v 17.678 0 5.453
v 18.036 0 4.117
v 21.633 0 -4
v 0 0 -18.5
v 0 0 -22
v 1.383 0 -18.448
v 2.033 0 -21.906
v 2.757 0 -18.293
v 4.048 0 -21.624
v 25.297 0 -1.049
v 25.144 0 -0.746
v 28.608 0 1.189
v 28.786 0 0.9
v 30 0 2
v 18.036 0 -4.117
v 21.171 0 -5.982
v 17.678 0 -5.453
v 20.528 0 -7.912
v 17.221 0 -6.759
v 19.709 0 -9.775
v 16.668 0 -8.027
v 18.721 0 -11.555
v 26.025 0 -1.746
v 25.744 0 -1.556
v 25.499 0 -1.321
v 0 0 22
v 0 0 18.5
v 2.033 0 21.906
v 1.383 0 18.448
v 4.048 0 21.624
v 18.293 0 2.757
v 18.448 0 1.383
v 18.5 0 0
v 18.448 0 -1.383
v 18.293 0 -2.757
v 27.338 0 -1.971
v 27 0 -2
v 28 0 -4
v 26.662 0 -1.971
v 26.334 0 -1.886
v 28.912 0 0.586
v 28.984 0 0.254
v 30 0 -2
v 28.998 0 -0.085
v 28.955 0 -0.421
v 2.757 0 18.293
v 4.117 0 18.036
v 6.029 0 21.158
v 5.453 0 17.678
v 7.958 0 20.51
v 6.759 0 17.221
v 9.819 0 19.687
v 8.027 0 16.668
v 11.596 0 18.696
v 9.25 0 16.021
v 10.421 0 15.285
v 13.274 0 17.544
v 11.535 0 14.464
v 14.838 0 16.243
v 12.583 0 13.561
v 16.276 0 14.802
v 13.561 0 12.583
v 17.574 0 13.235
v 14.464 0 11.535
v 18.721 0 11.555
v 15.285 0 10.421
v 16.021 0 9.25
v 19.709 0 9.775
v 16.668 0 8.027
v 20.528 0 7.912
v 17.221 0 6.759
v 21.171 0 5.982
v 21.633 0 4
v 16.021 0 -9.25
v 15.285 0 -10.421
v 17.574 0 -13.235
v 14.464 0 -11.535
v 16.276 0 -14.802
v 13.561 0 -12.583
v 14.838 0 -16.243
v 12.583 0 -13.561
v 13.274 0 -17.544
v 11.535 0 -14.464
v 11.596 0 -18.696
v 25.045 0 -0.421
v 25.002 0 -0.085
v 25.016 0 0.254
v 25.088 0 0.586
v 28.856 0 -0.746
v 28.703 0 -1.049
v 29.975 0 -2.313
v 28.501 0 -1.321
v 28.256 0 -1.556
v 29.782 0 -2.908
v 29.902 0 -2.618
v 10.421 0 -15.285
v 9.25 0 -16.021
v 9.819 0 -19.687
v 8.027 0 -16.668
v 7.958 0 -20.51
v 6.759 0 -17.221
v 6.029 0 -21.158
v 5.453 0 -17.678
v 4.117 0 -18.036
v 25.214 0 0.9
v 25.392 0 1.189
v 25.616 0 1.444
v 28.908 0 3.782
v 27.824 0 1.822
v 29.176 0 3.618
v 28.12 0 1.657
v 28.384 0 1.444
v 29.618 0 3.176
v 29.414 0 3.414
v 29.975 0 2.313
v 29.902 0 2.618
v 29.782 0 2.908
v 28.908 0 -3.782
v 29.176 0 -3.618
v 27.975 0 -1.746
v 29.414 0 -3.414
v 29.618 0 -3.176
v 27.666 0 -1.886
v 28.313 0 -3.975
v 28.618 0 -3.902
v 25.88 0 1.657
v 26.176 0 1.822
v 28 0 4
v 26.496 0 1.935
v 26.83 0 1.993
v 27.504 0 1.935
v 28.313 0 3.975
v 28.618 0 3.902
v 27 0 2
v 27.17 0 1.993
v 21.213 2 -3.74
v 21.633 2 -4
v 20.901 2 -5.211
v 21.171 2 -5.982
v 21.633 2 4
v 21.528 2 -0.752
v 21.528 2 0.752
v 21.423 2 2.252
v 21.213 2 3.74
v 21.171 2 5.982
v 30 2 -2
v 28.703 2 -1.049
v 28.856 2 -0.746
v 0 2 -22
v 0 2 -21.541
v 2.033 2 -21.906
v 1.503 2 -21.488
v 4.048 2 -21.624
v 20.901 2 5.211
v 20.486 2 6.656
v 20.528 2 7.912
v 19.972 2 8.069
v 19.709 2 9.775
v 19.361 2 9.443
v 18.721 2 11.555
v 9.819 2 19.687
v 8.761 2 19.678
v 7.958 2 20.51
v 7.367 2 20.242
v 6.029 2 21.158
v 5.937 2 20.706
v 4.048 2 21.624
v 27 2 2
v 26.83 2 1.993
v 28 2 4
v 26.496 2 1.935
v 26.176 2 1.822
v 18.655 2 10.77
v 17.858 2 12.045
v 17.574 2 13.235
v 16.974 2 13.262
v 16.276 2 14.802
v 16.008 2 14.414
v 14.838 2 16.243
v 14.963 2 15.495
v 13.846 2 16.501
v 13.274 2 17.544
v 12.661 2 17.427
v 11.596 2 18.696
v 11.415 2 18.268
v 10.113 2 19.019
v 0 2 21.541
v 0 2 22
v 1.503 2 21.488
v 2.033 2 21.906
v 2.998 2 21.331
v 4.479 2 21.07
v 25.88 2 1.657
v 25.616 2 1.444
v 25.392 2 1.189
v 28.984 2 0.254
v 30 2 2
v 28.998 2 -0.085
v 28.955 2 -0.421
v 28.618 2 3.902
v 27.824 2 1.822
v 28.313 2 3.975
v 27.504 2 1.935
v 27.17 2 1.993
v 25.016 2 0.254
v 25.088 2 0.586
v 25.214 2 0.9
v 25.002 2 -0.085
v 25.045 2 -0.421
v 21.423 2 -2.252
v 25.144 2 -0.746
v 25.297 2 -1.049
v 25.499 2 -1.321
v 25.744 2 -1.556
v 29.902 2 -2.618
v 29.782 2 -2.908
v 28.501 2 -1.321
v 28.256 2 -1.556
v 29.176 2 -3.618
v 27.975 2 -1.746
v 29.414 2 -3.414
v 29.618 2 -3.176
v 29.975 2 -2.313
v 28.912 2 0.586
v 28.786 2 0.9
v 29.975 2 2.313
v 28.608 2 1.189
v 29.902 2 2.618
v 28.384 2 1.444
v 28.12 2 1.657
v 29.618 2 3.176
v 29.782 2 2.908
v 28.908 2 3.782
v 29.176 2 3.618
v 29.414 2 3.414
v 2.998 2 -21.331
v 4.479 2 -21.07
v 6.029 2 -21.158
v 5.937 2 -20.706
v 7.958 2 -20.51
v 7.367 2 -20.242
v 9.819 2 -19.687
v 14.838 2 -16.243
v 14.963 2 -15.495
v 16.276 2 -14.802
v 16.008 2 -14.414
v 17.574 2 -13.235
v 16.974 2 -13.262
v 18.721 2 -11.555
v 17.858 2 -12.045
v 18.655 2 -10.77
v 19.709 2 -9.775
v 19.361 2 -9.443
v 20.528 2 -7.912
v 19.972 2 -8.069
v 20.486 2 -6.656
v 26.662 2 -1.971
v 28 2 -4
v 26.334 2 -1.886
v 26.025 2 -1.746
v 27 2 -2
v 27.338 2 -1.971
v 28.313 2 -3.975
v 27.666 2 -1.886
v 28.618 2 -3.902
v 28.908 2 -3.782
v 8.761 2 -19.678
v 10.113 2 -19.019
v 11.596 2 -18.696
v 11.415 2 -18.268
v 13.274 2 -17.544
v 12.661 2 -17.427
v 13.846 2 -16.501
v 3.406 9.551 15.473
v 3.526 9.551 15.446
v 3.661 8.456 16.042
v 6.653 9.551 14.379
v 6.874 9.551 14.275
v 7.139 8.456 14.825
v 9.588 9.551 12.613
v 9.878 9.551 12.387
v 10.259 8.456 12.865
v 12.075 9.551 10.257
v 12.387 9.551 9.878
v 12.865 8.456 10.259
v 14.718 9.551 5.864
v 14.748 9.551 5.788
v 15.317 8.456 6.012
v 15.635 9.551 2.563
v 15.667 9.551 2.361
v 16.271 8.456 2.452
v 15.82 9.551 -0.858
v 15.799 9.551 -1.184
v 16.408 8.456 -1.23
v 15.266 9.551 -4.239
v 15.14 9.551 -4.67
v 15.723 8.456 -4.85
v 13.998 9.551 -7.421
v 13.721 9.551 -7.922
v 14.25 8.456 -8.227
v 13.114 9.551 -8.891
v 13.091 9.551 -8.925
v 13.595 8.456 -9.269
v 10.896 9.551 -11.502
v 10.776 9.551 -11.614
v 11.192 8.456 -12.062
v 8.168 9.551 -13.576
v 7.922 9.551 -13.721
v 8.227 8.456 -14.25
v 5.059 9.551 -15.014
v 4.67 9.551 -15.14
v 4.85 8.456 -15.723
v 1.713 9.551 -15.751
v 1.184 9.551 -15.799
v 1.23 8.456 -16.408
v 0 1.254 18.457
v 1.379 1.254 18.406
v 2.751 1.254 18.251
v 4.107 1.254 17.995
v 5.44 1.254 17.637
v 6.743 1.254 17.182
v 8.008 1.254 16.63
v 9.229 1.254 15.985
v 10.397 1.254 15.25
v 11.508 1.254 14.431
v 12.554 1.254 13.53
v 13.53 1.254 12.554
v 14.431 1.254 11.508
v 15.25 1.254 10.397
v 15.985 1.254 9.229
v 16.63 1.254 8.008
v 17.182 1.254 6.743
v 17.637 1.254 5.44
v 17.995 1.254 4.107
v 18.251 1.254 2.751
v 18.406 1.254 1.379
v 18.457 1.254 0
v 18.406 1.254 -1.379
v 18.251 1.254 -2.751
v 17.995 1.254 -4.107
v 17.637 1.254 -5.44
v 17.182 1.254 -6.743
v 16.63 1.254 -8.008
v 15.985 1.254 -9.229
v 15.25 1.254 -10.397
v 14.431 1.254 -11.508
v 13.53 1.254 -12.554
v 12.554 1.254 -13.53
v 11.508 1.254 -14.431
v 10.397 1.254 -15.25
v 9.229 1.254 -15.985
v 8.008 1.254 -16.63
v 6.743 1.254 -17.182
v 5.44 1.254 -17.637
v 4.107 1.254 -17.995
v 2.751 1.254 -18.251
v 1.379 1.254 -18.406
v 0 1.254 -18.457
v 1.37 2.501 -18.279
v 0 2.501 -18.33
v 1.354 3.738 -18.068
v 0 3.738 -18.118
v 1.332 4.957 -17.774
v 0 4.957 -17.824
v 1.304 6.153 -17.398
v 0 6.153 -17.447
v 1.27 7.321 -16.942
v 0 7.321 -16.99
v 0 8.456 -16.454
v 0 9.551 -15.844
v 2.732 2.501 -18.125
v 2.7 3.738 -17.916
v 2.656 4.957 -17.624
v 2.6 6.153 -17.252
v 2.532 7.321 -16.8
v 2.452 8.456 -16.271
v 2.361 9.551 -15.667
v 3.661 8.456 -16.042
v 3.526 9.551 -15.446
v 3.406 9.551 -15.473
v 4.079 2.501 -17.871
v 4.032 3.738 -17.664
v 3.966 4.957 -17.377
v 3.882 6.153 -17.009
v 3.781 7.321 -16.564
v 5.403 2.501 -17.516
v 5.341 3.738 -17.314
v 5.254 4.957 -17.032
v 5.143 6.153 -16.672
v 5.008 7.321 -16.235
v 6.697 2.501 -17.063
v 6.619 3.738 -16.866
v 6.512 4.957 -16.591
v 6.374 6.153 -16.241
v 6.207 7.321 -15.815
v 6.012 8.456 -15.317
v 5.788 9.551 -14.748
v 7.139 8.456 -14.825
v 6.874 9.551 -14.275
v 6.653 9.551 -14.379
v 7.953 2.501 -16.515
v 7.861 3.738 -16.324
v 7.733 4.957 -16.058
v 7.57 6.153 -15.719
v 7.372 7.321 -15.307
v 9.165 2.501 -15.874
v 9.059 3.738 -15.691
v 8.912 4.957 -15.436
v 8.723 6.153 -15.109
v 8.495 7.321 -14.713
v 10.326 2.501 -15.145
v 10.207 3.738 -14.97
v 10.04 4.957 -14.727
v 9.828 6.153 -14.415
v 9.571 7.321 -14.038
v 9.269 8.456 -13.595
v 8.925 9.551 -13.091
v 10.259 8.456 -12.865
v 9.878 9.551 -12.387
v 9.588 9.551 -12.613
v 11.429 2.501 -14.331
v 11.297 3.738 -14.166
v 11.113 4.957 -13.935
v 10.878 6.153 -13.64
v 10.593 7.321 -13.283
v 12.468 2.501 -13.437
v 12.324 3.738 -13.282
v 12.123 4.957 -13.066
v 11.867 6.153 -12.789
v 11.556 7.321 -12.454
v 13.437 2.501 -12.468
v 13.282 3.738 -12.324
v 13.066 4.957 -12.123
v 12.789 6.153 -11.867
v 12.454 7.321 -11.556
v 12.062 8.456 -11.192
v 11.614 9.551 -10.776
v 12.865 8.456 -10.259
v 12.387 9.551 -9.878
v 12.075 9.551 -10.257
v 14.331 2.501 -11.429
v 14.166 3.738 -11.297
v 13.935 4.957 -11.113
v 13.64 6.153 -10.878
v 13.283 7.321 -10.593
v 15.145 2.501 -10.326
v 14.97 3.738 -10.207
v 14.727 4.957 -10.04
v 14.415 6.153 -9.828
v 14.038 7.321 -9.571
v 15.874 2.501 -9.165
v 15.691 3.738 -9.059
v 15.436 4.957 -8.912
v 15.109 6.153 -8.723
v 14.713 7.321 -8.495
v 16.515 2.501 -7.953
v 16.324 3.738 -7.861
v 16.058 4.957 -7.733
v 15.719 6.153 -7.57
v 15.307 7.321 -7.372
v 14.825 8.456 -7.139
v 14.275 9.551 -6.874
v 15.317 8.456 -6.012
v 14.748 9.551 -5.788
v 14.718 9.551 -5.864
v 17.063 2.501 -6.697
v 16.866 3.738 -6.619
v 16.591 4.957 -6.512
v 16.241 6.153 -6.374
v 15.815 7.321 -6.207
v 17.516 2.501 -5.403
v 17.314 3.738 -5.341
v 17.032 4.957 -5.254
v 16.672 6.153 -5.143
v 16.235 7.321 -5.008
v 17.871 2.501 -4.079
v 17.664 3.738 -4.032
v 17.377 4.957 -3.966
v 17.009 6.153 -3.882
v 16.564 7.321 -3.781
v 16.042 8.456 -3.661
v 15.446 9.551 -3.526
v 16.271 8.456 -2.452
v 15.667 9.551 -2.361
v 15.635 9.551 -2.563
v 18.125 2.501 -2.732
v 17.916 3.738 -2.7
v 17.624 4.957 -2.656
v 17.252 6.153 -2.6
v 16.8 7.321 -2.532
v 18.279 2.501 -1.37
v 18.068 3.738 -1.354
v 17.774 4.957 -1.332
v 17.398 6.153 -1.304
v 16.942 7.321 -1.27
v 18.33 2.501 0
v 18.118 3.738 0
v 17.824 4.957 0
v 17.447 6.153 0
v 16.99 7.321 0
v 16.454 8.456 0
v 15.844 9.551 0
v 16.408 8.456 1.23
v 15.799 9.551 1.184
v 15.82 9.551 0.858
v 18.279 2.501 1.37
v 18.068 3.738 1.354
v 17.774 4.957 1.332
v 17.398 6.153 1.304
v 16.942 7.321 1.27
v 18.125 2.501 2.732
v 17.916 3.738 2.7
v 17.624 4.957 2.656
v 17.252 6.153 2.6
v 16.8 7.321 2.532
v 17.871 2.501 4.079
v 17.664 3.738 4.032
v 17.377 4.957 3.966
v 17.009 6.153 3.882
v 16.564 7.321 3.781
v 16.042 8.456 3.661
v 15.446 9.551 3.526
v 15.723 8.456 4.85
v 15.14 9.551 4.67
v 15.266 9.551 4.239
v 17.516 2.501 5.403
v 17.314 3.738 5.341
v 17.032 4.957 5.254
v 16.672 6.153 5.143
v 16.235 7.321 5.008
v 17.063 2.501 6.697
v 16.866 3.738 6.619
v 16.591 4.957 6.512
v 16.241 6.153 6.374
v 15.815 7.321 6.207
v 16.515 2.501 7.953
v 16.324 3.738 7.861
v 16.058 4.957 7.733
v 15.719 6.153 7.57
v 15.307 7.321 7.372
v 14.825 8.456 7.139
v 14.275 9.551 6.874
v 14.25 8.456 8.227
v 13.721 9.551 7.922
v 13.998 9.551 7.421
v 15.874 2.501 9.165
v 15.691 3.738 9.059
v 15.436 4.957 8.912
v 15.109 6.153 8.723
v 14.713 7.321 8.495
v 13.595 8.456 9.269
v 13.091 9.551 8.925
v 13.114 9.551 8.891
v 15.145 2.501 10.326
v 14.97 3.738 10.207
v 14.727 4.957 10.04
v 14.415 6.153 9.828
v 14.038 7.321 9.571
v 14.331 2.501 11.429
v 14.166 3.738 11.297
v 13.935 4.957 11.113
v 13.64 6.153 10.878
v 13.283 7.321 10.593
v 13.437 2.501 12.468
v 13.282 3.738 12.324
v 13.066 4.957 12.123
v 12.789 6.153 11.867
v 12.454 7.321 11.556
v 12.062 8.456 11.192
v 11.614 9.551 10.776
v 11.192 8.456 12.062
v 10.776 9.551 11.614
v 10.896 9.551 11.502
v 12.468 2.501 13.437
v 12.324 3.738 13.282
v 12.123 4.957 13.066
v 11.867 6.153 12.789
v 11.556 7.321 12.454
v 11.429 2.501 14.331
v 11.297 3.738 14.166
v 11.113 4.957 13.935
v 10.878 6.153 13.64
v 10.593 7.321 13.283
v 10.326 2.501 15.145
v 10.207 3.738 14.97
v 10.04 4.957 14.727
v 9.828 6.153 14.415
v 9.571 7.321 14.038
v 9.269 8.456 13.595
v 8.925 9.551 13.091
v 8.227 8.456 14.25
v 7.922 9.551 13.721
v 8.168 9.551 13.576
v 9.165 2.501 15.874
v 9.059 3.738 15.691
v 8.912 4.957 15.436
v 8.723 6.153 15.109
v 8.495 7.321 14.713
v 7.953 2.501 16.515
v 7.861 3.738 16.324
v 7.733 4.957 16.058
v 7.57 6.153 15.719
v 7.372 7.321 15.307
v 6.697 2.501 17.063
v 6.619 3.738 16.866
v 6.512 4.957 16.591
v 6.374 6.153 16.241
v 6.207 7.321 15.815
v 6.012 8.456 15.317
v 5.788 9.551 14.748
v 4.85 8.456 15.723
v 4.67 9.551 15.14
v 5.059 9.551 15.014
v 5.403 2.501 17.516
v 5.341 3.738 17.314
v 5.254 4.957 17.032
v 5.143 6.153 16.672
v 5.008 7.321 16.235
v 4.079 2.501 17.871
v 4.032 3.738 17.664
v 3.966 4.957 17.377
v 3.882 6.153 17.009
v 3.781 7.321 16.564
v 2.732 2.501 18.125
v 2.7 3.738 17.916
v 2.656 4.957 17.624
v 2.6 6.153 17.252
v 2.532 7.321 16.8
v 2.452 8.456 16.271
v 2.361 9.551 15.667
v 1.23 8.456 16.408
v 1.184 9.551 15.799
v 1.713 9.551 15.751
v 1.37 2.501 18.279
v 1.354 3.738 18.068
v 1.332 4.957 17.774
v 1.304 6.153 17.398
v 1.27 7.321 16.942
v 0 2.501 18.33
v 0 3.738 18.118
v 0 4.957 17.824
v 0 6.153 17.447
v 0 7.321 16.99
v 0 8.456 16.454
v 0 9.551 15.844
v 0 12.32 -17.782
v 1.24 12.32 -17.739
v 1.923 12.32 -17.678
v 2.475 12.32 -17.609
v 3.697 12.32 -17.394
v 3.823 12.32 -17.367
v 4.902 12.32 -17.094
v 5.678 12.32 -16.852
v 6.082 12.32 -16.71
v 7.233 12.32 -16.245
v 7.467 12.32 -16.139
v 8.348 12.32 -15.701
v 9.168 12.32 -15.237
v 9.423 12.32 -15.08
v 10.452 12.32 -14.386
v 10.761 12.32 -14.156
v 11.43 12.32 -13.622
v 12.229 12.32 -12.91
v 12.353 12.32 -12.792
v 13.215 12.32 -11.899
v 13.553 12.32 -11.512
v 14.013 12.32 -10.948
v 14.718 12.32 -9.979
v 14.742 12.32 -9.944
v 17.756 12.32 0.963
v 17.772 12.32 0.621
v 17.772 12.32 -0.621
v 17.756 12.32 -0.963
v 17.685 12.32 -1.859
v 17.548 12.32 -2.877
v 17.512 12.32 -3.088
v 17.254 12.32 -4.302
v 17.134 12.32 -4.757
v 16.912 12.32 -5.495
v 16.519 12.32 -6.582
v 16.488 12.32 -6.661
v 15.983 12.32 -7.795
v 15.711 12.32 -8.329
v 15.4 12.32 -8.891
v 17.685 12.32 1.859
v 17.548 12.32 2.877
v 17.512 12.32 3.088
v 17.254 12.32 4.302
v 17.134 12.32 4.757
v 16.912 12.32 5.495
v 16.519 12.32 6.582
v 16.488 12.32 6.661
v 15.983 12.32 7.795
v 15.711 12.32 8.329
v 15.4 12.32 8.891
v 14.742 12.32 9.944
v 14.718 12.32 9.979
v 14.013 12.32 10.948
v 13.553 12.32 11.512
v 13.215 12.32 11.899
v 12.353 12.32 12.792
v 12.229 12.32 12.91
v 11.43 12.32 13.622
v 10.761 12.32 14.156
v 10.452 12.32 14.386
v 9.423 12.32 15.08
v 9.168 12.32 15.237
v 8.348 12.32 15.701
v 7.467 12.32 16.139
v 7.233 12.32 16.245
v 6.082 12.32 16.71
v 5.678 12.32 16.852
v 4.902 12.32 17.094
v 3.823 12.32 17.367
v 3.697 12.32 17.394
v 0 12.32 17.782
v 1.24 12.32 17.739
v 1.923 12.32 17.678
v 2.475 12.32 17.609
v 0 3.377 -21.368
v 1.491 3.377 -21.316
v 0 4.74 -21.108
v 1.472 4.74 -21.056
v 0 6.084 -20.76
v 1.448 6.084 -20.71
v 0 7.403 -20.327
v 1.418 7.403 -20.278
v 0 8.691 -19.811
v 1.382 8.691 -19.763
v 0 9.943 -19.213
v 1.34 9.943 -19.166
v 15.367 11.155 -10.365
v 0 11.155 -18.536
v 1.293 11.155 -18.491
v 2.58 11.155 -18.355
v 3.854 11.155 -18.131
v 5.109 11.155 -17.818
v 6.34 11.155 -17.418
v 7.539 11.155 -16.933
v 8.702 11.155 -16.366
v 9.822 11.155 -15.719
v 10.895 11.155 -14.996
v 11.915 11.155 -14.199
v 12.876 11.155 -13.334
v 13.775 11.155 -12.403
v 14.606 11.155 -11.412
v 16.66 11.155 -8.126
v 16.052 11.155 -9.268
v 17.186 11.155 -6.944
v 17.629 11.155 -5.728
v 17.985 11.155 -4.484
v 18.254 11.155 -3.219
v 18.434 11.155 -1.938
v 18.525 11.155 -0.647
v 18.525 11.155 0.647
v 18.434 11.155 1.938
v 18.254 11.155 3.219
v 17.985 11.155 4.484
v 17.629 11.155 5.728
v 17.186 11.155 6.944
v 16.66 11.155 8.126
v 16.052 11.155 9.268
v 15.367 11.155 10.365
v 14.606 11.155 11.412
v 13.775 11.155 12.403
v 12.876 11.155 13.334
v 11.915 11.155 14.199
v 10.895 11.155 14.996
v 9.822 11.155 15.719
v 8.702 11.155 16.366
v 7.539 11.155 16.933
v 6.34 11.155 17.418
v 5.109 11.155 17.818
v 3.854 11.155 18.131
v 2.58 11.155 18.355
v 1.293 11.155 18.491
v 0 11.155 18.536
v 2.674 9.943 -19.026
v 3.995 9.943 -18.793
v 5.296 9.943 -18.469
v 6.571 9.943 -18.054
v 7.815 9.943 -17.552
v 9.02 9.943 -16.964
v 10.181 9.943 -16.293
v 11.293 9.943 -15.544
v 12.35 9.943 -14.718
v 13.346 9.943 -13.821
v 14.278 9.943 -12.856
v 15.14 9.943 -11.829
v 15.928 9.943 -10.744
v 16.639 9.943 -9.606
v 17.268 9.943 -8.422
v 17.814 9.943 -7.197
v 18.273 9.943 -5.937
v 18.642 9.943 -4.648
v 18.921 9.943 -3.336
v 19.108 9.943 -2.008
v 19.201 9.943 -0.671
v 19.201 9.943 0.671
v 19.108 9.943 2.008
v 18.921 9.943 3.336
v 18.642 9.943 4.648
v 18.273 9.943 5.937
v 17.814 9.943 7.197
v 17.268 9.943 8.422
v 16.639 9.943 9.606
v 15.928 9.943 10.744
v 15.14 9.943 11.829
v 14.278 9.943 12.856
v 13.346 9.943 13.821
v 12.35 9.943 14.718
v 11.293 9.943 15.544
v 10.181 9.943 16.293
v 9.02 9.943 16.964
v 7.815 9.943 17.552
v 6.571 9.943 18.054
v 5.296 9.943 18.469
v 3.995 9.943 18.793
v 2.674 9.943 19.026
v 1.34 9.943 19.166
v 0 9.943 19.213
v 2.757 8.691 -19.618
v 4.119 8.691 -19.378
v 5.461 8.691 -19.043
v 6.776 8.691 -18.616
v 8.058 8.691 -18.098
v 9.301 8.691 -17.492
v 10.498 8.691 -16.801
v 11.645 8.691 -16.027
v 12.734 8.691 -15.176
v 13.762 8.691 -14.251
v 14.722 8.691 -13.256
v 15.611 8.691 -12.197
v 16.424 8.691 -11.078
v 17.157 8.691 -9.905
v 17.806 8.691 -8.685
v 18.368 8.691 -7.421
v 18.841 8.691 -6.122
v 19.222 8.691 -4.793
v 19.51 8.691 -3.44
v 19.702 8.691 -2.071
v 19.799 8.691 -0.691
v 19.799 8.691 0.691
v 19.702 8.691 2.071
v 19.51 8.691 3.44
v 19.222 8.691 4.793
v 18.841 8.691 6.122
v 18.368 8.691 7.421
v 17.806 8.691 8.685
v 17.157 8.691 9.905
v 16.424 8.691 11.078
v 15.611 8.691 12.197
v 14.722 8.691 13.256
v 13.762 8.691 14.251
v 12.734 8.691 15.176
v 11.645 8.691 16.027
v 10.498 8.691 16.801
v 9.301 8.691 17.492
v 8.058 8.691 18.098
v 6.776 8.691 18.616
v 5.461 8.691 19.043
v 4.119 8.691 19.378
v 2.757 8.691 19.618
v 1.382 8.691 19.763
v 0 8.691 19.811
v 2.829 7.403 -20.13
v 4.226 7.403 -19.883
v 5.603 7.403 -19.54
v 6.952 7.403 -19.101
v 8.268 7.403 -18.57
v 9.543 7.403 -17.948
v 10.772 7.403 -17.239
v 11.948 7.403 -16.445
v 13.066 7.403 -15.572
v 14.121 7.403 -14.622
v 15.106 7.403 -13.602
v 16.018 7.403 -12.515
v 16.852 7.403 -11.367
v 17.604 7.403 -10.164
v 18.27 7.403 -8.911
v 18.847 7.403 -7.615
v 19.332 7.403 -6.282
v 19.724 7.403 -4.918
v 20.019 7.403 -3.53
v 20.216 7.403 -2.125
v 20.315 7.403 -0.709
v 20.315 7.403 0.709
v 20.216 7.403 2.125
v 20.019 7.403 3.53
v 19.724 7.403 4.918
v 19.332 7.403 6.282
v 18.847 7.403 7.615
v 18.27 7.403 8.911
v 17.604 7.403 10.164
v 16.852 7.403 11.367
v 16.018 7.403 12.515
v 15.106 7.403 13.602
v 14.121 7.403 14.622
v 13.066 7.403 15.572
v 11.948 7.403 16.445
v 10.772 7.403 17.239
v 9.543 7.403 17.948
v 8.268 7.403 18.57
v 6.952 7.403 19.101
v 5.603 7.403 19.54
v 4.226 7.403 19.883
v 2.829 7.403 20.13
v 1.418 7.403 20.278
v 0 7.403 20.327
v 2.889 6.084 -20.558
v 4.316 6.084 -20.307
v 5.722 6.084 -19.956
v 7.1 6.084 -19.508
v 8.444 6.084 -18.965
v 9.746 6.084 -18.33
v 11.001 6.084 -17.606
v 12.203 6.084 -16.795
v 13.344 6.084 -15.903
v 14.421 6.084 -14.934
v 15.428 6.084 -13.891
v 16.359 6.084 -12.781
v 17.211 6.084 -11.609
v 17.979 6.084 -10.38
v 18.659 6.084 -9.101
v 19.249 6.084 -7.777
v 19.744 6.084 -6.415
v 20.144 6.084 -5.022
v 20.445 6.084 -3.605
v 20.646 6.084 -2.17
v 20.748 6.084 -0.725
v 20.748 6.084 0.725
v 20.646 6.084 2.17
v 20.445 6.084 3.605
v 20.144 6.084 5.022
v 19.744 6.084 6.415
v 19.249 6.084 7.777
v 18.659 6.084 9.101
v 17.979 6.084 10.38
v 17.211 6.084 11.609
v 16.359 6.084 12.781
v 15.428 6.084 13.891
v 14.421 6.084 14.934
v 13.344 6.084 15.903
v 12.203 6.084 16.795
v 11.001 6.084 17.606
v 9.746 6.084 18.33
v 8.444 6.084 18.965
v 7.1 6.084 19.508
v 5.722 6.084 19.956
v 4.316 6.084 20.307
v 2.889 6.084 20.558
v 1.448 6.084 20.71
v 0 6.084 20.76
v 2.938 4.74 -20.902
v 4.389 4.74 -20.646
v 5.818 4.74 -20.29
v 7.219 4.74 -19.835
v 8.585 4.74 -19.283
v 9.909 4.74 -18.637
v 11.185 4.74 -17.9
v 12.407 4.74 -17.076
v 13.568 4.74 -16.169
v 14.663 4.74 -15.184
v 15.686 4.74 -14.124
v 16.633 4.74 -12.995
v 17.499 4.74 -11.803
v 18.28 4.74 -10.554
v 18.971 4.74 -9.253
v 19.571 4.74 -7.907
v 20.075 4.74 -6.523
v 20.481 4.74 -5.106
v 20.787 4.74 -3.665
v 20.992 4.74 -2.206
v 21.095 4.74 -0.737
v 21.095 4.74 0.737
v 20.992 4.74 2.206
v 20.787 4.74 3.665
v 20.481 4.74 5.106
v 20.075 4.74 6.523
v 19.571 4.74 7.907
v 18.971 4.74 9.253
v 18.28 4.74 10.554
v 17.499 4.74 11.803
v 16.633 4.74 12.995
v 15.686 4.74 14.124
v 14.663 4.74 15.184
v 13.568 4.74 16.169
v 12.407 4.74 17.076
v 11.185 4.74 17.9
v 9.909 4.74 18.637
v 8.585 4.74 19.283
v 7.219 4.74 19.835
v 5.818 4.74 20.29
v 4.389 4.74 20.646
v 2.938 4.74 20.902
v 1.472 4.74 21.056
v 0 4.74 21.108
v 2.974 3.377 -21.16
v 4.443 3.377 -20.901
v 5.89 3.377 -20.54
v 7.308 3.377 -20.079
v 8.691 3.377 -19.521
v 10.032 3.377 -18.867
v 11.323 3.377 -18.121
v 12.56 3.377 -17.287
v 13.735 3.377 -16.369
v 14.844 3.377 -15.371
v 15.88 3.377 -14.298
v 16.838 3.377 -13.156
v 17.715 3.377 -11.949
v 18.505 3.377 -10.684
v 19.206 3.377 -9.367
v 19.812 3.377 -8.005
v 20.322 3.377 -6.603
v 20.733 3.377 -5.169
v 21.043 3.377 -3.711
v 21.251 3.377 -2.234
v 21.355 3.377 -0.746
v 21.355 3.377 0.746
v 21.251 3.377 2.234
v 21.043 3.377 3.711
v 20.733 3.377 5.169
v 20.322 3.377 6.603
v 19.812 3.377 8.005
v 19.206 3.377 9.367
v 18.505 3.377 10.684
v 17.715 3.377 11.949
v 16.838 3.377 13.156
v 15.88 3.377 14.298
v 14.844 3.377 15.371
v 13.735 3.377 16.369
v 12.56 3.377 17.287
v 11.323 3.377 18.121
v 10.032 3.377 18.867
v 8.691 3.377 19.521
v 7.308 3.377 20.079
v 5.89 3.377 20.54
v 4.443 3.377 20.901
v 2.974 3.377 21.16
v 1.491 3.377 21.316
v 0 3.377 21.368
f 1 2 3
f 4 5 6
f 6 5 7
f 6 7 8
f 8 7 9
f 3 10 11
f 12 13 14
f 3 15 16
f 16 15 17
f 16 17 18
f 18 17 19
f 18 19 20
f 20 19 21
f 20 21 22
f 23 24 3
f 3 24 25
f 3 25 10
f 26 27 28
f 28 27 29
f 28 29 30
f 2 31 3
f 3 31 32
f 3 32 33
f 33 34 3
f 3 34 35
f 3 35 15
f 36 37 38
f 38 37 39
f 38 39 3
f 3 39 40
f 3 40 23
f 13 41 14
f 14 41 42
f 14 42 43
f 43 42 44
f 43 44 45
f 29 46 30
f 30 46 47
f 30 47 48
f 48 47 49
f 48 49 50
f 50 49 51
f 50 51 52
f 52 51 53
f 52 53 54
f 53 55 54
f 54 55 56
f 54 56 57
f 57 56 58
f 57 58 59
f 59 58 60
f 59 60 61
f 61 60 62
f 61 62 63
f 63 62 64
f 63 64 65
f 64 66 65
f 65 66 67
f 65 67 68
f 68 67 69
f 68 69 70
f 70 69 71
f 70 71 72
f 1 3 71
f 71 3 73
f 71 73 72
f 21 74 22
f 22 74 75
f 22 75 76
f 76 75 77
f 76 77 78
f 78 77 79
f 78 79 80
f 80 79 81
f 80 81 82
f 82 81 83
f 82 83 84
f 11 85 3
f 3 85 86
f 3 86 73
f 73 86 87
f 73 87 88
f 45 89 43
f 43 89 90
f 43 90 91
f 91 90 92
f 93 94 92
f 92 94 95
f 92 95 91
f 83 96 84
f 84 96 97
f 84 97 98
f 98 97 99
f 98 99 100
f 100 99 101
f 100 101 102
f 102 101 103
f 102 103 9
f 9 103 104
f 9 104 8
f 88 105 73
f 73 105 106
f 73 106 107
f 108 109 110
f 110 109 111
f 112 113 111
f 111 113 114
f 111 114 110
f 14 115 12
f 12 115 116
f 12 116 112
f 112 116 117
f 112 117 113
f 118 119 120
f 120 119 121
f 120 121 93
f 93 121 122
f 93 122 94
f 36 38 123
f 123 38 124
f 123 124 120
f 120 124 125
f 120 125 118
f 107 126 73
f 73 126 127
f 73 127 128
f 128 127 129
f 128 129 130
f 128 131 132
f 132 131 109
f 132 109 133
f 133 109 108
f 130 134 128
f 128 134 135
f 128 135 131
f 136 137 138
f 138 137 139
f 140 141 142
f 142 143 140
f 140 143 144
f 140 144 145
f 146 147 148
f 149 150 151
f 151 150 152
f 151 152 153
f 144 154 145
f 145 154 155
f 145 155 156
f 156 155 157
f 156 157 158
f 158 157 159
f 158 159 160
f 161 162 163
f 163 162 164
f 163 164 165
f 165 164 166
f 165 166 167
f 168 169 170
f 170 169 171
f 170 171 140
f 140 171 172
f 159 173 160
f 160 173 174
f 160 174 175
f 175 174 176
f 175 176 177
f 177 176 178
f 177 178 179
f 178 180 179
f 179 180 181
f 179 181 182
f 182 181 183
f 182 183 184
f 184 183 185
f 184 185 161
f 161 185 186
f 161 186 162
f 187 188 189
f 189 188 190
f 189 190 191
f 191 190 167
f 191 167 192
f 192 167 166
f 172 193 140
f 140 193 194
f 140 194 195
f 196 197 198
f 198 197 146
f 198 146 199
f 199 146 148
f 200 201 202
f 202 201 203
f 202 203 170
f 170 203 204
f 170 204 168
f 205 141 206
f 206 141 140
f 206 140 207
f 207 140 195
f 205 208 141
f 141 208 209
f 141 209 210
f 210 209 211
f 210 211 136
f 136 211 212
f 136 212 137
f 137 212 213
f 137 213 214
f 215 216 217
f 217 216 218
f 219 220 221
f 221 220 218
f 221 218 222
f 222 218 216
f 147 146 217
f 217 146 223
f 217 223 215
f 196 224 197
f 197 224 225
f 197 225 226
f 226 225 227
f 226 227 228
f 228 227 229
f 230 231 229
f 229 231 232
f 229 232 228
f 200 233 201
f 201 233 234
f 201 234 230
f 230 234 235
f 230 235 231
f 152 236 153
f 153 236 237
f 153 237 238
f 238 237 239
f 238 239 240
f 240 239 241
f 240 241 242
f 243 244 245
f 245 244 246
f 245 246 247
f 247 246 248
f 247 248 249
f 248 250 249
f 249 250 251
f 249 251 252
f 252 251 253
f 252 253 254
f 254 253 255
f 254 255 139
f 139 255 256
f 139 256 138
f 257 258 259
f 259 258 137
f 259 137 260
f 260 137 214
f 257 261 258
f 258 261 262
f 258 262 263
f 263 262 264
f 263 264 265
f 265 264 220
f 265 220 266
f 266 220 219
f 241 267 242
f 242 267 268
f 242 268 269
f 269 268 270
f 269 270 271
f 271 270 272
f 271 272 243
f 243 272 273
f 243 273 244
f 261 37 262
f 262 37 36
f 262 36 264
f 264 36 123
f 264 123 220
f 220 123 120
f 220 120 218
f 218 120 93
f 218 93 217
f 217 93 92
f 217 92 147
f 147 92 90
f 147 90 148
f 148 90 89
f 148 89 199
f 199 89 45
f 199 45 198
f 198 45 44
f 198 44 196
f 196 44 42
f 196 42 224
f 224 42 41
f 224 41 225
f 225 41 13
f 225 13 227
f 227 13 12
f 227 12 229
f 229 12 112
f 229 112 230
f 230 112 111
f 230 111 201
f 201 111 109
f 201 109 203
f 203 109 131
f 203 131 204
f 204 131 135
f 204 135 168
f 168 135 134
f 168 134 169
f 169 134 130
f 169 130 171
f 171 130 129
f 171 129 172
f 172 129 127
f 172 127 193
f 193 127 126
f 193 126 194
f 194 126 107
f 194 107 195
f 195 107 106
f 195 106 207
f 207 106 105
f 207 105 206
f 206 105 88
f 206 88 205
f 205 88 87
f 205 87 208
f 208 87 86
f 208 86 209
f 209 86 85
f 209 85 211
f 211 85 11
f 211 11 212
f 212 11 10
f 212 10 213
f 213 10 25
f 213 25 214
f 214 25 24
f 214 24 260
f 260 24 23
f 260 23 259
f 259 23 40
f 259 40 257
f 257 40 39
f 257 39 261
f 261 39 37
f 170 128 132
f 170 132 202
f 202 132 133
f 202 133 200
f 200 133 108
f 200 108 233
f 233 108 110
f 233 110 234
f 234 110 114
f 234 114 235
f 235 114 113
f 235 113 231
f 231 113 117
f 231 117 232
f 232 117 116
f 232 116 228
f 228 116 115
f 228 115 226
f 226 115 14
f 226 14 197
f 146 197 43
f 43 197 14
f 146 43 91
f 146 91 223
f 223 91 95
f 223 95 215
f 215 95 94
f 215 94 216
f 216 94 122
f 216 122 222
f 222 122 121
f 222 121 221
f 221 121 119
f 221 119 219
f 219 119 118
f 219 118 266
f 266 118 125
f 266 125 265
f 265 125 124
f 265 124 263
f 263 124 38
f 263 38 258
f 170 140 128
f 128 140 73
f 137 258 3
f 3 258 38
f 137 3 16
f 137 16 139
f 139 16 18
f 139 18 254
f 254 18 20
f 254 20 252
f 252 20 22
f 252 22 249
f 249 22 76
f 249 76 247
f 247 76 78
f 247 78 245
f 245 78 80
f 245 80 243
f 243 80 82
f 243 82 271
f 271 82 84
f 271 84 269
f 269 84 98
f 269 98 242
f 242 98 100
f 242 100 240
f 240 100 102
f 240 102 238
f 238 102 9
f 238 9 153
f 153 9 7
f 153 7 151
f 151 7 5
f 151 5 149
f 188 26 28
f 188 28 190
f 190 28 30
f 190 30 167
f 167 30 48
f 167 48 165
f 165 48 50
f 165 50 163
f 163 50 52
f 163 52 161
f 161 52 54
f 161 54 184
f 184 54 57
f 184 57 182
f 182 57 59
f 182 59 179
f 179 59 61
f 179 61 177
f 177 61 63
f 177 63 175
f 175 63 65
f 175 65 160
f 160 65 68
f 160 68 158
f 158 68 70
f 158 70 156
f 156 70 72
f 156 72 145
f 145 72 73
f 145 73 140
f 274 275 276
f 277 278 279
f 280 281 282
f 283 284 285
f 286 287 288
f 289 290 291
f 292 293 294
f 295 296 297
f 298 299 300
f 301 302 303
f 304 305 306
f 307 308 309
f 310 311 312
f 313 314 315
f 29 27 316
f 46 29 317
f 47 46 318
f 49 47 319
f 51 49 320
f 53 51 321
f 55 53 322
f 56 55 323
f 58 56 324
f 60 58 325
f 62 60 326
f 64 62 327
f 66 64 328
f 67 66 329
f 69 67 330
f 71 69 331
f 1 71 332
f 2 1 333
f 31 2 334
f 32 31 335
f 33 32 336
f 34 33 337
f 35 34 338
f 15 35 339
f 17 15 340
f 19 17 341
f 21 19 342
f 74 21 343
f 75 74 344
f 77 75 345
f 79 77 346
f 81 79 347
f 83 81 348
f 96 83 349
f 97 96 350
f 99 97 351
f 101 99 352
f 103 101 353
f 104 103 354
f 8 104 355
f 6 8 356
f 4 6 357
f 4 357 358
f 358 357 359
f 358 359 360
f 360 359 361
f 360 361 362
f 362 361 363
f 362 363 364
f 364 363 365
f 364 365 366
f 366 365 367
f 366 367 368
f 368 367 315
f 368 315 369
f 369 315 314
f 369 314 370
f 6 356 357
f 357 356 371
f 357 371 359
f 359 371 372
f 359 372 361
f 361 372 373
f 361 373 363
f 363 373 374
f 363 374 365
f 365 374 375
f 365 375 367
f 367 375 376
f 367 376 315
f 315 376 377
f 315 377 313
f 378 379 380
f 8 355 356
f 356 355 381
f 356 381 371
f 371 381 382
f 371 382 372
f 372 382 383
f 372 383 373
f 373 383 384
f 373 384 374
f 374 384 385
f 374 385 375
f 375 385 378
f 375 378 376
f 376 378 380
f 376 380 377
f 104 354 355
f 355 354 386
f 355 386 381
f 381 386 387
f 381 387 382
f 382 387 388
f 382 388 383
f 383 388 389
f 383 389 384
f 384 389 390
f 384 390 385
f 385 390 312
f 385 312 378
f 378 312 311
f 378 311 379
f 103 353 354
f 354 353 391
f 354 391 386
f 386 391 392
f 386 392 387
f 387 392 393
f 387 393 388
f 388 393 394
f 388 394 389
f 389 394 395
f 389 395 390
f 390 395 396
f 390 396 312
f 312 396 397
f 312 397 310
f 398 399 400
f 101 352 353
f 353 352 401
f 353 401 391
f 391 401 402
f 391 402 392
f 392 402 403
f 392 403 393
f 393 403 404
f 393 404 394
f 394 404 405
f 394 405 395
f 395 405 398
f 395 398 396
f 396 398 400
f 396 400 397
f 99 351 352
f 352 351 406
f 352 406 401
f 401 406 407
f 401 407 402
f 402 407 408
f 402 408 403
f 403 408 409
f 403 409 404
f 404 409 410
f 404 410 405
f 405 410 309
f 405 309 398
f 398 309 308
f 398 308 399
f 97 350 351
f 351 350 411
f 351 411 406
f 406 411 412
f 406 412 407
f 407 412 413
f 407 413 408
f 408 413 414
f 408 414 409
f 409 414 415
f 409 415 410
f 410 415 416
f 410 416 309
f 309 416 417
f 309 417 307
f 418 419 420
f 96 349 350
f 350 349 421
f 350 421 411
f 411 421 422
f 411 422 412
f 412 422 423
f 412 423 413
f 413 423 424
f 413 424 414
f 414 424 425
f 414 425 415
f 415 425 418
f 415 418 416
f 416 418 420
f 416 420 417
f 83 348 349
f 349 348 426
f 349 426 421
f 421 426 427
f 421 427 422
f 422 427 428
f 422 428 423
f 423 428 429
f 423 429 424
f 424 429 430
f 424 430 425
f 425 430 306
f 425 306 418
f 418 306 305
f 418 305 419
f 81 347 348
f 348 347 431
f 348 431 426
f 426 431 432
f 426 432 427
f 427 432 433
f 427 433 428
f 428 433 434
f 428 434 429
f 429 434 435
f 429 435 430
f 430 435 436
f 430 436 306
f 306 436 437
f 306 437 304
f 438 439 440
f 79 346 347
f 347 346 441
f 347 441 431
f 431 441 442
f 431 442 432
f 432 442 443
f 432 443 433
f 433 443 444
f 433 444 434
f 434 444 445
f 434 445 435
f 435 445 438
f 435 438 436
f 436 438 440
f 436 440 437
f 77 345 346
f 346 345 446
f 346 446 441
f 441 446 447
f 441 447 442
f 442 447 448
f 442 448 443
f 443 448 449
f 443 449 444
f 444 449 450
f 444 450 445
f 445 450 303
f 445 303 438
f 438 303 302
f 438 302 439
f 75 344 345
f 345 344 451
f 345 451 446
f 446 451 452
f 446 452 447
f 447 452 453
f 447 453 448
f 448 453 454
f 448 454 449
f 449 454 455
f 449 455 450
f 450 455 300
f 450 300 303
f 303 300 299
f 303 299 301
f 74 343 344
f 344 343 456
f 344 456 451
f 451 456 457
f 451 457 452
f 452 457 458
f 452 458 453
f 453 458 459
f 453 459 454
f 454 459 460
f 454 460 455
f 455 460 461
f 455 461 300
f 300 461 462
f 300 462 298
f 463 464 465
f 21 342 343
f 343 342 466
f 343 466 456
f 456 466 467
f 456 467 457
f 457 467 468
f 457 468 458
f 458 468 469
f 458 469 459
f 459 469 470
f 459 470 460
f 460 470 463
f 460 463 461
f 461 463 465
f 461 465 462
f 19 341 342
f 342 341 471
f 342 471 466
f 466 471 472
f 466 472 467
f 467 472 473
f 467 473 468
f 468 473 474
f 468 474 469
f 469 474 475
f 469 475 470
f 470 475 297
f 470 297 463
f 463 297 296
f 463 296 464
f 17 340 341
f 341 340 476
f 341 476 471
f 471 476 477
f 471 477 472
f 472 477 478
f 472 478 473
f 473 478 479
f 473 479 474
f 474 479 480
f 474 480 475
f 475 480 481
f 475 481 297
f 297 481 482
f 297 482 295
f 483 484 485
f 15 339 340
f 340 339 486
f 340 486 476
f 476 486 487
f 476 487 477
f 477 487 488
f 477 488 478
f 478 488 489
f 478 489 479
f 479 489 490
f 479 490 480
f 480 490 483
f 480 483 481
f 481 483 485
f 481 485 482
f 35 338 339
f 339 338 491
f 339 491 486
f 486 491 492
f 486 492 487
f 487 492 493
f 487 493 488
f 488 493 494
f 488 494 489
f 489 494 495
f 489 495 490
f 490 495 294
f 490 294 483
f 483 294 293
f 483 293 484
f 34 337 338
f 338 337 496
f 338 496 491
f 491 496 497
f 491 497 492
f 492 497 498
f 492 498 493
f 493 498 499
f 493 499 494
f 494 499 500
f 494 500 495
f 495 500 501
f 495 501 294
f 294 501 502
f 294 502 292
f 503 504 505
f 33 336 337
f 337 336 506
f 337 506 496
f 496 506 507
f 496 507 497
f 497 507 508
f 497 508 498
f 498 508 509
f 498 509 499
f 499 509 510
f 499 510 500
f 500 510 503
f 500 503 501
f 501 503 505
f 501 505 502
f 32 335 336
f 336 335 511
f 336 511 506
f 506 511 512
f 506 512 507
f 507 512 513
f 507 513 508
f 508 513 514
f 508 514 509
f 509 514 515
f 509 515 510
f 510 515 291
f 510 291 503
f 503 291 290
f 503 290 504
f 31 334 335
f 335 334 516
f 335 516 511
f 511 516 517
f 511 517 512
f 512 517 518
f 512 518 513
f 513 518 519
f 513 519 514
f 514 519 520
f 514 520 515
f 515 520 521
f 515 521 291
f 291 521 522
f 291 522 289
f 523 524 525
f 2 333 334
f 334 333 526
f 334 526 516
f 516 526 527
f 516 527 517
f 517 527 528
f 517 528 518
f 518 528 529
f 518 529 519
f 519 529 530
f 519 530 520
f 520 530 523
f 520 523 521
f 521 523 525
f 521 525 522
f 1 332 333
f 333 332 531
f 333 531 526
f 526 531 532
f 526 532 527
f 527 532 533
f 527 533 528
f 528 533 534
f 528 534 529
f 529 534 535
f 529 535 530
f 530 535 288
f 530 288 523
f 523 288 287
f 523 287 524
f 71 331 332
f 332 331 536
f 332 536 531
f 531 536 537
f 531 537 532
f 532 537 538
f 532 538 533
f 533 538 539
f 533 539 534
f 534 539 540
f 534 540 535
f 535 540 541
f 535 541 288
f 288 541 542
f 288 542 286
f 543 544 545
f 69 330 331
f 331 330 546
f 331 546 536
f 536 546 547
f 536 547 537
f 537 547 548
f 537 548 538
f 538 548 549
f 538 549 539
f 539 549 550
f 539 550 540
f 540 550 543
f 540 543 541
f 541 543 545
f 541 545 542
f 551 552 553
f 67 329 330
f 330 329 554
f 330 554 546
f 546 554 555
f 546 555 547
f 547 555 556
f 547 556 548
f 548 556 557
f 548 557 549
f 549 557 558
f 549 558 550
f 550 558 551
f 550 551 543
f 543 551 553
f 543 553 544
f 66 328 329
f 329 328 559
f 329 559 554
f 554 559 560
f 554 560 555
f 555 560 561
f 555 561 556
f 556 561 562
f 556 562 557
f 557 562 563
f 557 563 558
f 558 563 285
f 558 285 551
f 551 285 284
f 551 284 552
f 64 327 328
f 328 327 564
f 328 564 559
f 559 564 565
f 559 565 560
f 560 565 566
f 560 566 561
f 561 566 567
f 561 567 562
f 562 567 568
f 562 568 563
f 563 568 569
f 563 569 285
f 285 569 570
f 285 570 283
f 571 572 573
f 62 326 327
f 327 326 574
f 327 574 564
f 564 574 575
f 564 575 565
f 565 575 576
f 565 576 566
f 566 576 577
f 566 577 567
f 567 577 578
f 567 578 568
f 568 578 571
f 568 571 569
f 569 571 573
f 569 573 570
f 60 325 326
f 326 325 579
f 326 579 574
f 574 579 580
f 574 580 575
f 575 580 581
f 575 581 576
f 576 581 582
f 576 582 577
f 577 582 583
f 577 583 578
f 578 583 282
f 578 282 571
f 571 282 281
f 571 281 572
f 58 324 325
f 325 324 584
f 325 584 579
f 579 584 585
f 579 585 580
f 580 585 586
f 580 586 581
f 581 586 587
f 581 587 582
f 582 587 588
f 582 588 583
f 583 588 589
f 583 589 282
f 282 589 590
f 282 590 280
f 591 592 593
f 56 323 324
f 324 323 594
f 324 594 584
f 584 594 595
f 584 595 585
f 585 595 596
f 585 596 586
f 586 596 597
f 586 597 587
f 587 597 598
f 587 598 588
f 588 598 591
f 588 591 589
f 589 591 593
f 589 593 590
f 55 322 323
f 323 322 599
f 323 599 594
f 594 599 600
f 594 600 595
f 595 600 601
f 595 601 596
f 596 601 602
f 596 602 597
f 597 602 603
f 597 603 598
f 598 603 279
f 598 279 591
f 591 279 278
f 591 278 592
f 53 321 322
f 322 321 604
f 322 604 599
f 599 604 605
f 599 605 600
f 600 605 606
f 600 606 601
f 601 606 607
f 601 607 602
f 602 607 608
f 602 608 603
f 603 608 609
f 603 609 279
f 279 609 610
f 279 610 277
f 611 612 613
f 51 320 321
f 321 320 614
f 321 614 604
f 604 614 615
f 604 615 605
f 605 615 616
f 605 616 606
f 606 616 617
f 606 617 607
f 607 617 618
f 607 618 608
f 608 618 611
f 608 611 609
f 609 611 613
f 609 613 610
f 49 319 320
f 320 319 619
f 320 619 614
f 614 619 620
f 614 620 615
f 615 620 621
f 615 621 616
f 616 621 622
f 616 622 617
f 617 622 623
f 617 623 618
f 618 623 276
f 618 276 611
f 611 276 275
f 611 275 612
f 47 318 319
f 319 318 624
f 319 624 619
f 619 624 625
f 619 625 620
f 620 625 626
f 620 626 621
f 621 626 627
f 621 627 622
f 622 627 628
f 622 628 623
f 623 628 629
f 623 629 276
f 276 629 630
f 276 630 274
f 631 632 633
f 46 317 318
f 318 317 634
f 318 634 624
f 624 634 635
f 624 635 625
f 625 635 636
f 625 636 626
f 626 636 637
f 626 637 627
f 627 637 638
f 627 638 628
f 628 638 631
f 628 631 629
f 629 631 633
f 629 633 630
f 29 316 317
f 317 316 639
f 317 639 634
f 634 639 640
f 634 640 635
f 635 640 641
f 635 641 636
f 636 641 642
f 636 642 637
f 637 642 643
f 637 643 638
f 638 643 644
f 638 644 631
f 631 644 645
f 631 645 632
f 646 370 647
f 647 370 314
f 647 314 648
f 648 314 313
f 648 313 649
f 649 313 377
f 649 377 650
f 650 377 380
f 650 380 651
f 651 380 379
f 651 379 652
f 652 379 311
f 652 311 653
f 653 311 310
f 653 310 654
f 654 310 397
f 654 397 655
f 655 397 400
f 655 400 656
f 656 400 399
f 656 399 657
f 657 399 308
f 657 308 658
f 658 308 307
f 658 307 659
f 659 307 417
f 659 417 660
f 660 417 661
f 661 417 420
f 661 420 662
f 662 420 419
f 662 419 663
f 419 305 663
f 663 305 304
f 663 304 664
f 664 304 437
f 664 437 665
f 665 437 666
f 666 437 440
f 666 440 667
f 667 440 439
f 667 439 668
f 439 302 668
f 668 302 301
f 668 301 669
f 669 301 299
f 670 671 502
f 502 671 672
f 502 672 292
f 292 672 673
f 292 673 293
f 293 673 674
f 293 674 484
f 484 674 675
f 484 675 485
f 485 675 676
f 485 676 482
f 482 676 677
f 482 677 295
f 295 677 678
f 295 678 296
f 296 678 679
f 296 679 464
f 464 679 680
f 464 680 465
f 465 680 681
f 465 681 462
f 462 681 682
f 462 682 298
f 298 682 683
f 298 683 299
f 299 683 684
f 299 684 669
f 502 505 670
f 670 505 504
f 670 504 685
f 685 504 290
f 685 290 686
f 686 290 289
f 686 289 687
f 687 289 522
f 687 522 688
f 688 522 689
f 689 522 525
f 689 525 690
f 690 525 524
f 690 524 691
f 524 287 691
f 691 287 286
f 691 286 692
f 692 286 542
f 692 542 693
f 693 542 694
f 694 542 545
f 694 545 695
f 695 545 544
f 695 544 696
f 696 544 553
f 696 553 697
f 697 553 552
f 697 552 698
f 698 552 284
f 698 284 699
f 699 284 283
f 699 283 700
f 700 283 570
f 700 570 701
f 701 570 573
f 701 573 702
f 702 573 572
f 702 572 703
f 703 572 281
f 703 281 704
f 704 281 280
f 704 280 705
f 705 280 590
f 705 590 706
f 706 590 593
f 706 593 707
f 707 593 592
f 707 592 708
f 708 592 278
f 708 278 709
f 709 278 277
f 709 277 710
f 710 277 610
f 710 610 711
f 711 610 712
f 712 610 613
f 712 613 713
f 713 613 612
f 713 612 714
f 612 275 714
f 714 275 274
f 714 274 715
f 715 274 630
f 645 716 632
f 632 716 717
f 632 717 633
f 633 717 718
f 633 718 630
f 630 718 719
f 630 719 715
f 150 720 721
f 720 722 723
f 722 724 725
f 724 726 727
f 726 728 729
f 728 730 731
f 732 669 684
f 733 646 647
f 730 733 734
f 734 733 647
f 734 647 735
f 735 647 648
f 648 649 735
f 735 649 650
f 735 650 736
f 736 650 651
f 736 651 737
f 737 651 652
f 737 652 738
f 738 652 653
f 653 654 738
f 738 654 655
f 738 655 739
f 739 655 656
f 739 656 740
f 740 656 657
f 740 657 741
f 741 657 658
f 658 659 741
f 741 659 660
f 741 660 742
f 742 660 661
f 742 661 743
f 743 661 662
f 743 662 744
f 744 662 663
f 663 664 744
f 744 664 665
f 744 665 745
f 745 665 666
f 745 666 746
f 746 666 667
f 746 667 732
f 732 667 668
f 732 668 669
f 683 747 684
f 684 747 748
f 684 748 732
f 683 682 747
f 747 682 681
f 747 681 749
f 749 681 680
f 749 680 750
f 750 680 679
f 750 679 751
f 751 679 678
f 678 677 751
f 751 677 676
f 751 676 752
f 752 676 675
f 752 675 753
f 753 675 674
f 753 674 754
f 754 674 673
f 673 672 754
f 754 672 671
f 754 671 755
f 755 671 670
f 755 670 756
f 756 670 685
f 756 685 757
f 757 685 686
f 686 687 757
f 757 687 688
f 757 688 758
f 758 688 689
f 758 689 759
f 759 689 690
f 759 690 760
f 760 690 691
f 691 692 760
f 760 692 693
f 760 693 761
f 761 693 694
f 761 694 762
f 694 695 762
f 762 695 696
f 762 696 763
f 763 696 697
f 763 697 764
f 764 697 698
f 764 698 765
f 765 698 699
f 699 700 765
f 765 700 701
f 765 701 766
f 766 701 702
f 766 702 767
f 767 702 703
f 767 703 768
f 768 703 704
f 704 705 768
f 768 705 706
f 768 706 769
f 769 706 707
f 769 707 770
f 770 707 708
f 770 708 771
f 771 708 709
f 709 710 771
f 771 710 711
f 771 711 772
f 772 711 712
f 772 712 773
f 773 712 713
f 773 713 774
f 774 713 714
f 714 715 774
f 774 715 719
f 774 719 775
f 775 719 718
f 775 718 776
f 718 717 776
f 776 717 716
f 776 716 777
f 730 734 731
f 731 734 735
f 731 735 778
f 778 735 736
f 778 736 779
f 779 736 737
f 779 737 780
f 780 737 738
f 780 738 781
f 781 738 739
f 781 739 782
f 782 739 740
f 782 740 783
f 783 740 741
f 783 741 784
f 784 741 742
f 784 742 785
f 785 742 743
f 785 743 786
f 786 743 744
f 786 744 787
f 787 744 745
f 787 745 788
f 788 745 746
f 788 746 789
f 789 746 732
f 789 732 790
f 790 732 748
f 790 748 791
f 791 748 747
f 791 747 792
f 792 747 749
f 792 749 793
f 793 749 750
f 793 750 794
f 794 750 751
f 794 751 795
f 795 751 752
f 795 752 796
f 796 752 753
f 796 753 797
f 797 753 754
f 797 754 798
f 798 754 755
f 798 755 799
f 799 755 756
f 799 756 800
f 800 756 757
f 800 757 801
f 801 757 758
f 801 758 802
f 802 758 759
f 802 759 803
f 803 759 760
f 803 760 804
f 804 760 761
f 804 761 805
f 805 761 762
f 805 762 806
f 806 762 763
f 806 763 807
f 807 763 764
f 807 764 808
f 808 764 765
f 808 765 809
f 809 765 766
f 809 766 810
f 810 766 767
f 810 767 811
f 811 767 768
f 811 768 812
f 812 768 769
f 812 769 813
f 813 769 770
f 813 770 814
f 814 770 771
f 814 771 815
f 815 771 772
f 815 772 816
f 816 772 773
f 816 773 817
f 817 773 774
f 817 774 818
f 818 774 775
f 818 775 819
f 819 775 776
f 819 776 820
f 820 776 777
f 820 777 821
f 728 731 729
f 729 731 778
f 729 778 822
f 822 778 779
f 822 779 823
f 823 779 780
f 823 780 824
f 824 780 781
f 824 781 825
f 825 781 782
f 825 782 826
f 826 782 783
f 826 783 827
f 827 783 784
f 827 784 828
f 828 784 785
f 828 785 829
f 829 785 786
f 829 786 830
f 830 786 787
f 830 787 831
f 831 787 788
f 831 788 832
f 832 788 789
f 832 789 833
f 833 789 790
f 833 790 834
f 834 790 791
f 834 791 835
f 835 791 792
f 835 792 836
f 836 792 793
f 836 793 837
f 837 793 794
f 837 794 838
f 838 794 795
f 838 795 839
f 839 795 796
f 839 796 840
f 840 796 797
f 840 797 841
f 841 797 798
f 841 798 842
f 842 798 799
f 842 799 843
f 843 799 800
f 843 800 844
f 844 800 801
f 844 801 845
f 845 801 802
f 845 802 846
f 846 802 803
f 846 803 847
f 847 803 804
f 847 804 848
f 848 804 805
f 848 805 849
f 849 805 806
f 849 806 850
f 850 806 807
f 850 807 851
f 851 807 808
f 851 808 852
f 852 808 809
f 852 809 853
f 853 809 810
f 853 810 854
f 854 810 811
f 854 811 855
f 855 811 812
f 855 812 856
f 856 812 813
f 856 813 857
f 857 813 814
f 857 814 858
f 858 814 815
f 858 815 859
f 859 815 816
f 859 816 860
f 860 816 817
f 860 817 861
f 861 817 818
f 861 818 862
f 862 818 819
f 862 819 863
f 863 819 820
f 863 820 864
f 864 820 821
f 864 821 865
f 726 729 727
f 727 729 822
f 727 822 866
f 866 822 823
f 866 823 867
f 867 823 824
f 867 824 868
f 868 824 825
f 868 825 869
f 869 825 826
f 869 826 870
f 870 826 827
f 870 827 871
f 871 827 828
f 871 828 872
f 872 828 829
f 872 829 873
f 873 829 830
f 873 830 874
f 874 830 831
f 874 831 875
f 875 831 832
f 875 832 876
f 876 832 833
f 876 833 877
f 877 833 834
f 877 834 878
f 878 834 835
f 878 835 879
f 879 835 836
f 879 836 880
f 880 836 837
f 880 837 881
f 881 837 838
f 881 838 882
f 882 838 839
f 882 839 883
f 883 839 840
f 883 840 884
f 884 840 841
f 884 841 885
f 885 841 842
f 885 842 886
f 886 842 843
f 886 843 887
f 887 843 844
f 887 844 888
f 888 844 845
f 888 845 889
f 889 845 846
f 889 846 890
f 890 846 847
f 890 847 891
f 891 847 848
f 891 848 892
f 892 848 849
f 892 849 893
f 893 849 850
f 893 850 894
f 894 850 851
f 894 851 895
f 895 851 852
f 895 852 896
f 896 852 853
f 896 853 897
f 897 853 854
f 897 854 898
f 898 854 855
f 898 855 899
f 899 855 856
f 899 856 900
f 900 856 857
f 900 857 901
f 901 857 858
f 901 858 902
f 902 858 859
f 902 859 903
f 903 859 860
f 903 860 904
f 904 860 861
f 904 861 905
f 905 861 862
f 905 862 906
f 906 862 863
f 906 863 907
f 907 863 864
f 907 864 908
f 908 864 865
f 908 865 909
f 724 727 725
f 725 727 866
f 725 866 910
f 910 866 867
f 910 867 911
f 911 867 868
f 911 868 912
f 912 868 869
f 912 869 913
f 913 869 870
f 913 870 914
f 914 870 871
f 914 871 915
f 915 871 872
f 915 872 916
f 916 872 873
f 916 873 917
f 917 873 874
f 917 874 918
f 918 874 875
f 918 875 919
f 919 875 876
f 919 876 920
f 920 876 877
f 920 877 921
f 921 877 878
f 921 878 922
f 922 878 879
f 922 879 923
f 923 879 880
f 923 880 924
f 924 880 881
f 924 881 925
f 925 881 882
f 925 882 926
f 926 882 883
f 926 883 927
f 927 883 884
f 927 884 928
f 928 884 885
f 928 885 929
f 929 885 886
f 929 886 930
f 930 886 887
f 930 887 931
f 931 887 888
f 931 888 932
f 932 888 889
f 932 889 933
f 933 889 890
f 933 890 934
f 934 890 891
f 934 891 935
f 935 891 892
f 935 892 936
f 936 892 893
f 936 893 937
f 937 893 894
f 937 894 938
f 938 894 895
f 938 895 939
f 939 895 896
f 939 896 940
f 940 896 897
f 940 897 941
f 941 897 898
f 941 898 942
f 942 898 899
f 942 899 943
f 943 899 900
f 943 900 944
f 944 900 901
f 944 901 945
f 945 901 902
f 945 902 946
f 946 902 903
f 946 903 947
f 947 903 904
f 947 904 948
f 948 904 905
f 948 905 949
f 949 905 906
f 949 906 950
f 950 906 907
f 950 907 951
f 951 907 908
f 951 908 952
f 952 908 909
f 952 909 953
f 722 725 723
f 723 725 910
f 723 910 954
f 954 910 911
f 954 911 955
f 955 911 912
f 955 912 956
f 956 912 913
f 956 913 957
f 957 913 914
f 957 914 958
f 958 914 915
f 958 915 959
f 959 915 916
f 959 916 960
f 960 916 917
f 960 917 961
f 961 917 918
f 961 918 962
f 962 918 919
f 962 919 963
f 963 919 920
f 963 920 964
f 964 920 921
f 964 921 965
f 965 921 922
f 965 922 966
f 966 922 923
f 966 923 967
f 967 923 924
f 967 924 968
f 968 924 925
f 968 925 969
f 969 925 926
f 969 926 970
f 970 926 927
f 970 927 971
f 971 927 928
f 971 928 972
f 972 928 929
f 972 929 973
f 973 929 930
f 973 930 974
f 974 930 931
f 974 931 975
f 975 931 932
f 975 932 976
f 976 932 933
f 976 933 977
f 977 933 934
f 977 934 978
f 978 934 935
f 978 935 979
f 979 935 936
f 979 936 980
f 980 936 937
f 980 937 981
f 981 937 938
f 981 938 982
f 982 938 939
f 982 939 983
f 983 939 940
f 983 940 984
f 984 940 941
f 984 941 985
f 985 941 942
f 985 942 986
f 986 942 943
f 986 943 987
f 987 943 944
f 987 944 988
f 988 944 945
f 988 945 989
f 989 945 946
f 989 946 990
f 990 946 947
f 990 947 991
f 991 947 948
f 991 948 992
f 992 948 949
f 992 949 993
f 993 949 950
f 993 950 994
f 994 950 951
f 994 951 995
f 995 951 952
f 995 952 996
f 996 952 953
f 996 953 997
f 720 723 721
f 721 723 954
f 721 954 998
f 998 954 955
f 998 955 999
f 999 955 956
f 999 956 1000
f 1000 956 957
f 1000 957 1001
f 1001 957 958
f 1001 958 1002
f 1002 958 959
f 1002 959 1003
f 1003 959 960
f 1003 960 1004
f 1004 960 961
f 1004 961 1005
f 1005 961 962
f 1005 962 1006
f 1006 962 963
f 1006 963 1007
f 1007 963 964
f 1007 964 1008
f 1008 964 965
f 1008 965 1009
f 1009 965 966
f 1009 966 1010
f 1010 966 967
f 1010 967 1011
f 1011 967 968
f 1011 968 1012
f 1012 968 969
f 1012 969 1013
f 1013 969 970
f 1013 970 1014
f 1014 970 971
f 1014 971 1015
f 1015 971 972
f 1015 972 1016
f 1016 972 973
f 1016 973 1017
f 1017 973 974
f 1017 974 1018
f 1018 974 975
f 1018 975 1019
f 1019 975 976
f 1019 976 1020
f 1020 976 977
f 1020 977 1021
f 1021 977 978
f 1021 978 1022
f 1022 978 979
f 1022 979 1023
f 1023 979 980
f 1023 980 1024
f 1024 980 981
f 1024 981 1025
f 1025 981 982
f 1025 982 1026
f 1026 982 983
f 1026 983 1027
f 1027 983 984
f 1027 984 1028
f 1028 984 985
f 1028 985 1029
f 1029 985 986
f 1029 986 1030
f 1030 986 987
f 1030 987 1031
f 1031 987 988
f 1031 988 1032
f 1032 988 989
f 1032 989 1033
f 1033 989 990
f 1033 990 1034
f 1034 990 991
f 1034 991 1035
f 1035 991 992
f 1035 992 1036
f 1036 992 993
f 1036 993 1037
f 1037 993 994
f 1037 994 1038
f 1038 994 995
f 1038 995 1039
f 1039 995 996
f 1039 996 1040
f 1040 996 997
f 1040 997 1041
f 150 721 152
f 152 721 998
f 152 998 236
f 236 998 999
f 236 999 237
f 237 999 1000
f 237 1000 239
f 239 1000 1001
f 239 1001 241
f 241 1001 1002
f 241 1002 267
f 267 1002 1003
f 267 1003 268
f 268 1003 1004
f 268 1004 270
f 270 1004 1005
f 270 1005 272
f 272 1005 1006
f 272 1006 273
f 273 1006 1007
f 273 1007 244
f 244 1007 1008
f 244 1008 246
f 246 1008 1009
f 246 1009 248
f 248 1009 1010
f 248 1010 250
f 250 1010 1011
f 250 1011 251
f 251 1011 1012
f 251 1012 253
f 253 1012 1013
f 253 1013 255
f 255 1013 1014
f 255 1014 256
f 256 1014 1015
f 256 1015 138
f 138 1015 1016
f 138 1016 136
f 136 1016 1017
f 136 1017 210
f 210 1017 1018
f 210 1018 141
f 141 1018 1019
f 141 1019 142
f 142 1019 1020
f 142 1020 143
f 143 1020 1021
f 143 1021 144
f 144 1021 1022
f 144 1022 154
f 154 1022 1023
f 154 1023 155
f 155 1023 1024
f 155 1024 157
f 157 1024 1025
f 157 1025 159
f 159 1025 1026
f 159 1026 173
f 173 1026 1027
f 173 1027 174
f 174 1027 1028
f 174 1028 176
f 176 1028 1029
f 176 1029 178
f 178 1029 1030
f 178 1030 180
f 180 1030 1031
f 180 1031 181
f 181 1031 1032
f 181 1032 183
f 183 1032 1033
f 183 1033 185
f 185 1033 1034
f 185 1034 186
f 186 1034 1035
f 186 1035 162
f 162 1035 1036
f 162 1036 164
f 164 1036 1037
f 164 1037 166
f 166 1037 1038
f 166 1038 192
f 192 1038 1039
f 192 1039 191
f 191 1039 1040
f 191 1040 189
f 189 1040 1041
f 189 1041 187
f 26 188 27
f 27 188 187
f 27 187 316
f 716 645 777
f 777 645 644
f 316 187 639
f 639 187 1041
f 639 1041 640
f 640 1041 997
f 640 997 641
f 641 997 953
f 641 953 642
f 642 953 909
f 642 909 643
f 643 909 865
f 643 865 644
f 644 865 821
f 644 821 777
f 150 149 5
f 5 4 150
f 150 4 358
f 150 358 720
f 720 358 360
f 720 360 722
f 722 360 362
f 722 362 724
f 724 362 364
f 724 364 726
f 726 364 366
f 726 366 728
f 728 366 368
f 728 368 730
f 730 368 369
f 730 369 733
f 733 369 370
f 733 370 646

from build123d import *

# Parameters (mm, degrees)
SKETCH2_R           = 18.5
SKETCH2_R_2         = 2
BOSS_EXTRUDE1_DEPTH = 2
SKETCH5_W           = 68.697937928
SKETCH5_H           = 35.271008104
CUT_EXTRUDE1_DEPTH  = 31


with BuildPart() as part:
    # Sketch2 → Boss-Extrude1 (new body)
    with BuildSketch(Plane(origin=(0, 0, 0), x_dir=(1, 0, 0), z_dir=(0, 1, 0))):
        with BuildLine():
            ThreePointArc((30, 2), (29.414213562, 3.414213562), (28, 4))
            Line((28, 4), (21.633307653, 4))
            ThreePointArc((21.633307653, 4), (0, 22), (-21.633307653, 4))
            Line((-21.633307653, 4), (-28, 4))
            ThreePointArc((-28, 4), (-29.414213562, 3.414213562), (-30, 2))
            Line((-30, 2), (-30, -2))
            ThreePointArc((-30, -2), (-29.414213562, -3.414213562), (-28, -4))
            Line((-28, -4), (-21.633307653, -4))
            ThreePointArc((-21.633307653, -4), (0, -22), (21.633307653, -4))
            Line((21.633307653, -4), (28, -4))
            ThreePointArc((28, -4), (29.414213562, -3.414213562), (30, -2))
            Line((30, -2), (30, 2))
        make_face()
        Circle(SKETCH2_R, mode=Mode.SUBTRACT)
        with Locations((27, 0)):
            Circle(SKETCH2_R_2, mode=Mode.SUBTRACT)
        with Locations((-27, 0)):
            Circle(SKETCH2_R_2, mode=Mode.SUBTRACT)
    extrude(amount=BOSS_EXTRUDE1_DEPTH)

    # Sketch4 → Revolve1 (revolve)
    with BuildSketch(Plane.XY):
        with BuildLine():
            Line((-21.633307653, 0), (-18.5, 0))
            ThreePointArc((-18.5, 0), (-17.823557637, 4.956893497), (-15.843698038, 9.551294806))
            Line((-15.843698038, 9.551294806), (-17.782437649, 12.320101917))
            ThreePointArc((-17.782437649, 12.320101917), (-20.648159052, 6.453954428), (-21.633307653, 0))
        make_face()
    revolve(axis=Axis((0, 21.633307653, 0), (0, -1, 0)))

    # Sketch5 → Cut-Extrude1 (cut, through all)
    with BuildSketch(Plane(origin=(0, 0, 0), x_dir=(0, 0, -1), z_dir=(1, 0, 0))):
        Rectangle(SKETCH5_W, SKETCH5_H)
    extrude(amount=-CUT_EXTRUDE1_DEPTH, mode=Mode.SUBTRACT)


solid = part.part
